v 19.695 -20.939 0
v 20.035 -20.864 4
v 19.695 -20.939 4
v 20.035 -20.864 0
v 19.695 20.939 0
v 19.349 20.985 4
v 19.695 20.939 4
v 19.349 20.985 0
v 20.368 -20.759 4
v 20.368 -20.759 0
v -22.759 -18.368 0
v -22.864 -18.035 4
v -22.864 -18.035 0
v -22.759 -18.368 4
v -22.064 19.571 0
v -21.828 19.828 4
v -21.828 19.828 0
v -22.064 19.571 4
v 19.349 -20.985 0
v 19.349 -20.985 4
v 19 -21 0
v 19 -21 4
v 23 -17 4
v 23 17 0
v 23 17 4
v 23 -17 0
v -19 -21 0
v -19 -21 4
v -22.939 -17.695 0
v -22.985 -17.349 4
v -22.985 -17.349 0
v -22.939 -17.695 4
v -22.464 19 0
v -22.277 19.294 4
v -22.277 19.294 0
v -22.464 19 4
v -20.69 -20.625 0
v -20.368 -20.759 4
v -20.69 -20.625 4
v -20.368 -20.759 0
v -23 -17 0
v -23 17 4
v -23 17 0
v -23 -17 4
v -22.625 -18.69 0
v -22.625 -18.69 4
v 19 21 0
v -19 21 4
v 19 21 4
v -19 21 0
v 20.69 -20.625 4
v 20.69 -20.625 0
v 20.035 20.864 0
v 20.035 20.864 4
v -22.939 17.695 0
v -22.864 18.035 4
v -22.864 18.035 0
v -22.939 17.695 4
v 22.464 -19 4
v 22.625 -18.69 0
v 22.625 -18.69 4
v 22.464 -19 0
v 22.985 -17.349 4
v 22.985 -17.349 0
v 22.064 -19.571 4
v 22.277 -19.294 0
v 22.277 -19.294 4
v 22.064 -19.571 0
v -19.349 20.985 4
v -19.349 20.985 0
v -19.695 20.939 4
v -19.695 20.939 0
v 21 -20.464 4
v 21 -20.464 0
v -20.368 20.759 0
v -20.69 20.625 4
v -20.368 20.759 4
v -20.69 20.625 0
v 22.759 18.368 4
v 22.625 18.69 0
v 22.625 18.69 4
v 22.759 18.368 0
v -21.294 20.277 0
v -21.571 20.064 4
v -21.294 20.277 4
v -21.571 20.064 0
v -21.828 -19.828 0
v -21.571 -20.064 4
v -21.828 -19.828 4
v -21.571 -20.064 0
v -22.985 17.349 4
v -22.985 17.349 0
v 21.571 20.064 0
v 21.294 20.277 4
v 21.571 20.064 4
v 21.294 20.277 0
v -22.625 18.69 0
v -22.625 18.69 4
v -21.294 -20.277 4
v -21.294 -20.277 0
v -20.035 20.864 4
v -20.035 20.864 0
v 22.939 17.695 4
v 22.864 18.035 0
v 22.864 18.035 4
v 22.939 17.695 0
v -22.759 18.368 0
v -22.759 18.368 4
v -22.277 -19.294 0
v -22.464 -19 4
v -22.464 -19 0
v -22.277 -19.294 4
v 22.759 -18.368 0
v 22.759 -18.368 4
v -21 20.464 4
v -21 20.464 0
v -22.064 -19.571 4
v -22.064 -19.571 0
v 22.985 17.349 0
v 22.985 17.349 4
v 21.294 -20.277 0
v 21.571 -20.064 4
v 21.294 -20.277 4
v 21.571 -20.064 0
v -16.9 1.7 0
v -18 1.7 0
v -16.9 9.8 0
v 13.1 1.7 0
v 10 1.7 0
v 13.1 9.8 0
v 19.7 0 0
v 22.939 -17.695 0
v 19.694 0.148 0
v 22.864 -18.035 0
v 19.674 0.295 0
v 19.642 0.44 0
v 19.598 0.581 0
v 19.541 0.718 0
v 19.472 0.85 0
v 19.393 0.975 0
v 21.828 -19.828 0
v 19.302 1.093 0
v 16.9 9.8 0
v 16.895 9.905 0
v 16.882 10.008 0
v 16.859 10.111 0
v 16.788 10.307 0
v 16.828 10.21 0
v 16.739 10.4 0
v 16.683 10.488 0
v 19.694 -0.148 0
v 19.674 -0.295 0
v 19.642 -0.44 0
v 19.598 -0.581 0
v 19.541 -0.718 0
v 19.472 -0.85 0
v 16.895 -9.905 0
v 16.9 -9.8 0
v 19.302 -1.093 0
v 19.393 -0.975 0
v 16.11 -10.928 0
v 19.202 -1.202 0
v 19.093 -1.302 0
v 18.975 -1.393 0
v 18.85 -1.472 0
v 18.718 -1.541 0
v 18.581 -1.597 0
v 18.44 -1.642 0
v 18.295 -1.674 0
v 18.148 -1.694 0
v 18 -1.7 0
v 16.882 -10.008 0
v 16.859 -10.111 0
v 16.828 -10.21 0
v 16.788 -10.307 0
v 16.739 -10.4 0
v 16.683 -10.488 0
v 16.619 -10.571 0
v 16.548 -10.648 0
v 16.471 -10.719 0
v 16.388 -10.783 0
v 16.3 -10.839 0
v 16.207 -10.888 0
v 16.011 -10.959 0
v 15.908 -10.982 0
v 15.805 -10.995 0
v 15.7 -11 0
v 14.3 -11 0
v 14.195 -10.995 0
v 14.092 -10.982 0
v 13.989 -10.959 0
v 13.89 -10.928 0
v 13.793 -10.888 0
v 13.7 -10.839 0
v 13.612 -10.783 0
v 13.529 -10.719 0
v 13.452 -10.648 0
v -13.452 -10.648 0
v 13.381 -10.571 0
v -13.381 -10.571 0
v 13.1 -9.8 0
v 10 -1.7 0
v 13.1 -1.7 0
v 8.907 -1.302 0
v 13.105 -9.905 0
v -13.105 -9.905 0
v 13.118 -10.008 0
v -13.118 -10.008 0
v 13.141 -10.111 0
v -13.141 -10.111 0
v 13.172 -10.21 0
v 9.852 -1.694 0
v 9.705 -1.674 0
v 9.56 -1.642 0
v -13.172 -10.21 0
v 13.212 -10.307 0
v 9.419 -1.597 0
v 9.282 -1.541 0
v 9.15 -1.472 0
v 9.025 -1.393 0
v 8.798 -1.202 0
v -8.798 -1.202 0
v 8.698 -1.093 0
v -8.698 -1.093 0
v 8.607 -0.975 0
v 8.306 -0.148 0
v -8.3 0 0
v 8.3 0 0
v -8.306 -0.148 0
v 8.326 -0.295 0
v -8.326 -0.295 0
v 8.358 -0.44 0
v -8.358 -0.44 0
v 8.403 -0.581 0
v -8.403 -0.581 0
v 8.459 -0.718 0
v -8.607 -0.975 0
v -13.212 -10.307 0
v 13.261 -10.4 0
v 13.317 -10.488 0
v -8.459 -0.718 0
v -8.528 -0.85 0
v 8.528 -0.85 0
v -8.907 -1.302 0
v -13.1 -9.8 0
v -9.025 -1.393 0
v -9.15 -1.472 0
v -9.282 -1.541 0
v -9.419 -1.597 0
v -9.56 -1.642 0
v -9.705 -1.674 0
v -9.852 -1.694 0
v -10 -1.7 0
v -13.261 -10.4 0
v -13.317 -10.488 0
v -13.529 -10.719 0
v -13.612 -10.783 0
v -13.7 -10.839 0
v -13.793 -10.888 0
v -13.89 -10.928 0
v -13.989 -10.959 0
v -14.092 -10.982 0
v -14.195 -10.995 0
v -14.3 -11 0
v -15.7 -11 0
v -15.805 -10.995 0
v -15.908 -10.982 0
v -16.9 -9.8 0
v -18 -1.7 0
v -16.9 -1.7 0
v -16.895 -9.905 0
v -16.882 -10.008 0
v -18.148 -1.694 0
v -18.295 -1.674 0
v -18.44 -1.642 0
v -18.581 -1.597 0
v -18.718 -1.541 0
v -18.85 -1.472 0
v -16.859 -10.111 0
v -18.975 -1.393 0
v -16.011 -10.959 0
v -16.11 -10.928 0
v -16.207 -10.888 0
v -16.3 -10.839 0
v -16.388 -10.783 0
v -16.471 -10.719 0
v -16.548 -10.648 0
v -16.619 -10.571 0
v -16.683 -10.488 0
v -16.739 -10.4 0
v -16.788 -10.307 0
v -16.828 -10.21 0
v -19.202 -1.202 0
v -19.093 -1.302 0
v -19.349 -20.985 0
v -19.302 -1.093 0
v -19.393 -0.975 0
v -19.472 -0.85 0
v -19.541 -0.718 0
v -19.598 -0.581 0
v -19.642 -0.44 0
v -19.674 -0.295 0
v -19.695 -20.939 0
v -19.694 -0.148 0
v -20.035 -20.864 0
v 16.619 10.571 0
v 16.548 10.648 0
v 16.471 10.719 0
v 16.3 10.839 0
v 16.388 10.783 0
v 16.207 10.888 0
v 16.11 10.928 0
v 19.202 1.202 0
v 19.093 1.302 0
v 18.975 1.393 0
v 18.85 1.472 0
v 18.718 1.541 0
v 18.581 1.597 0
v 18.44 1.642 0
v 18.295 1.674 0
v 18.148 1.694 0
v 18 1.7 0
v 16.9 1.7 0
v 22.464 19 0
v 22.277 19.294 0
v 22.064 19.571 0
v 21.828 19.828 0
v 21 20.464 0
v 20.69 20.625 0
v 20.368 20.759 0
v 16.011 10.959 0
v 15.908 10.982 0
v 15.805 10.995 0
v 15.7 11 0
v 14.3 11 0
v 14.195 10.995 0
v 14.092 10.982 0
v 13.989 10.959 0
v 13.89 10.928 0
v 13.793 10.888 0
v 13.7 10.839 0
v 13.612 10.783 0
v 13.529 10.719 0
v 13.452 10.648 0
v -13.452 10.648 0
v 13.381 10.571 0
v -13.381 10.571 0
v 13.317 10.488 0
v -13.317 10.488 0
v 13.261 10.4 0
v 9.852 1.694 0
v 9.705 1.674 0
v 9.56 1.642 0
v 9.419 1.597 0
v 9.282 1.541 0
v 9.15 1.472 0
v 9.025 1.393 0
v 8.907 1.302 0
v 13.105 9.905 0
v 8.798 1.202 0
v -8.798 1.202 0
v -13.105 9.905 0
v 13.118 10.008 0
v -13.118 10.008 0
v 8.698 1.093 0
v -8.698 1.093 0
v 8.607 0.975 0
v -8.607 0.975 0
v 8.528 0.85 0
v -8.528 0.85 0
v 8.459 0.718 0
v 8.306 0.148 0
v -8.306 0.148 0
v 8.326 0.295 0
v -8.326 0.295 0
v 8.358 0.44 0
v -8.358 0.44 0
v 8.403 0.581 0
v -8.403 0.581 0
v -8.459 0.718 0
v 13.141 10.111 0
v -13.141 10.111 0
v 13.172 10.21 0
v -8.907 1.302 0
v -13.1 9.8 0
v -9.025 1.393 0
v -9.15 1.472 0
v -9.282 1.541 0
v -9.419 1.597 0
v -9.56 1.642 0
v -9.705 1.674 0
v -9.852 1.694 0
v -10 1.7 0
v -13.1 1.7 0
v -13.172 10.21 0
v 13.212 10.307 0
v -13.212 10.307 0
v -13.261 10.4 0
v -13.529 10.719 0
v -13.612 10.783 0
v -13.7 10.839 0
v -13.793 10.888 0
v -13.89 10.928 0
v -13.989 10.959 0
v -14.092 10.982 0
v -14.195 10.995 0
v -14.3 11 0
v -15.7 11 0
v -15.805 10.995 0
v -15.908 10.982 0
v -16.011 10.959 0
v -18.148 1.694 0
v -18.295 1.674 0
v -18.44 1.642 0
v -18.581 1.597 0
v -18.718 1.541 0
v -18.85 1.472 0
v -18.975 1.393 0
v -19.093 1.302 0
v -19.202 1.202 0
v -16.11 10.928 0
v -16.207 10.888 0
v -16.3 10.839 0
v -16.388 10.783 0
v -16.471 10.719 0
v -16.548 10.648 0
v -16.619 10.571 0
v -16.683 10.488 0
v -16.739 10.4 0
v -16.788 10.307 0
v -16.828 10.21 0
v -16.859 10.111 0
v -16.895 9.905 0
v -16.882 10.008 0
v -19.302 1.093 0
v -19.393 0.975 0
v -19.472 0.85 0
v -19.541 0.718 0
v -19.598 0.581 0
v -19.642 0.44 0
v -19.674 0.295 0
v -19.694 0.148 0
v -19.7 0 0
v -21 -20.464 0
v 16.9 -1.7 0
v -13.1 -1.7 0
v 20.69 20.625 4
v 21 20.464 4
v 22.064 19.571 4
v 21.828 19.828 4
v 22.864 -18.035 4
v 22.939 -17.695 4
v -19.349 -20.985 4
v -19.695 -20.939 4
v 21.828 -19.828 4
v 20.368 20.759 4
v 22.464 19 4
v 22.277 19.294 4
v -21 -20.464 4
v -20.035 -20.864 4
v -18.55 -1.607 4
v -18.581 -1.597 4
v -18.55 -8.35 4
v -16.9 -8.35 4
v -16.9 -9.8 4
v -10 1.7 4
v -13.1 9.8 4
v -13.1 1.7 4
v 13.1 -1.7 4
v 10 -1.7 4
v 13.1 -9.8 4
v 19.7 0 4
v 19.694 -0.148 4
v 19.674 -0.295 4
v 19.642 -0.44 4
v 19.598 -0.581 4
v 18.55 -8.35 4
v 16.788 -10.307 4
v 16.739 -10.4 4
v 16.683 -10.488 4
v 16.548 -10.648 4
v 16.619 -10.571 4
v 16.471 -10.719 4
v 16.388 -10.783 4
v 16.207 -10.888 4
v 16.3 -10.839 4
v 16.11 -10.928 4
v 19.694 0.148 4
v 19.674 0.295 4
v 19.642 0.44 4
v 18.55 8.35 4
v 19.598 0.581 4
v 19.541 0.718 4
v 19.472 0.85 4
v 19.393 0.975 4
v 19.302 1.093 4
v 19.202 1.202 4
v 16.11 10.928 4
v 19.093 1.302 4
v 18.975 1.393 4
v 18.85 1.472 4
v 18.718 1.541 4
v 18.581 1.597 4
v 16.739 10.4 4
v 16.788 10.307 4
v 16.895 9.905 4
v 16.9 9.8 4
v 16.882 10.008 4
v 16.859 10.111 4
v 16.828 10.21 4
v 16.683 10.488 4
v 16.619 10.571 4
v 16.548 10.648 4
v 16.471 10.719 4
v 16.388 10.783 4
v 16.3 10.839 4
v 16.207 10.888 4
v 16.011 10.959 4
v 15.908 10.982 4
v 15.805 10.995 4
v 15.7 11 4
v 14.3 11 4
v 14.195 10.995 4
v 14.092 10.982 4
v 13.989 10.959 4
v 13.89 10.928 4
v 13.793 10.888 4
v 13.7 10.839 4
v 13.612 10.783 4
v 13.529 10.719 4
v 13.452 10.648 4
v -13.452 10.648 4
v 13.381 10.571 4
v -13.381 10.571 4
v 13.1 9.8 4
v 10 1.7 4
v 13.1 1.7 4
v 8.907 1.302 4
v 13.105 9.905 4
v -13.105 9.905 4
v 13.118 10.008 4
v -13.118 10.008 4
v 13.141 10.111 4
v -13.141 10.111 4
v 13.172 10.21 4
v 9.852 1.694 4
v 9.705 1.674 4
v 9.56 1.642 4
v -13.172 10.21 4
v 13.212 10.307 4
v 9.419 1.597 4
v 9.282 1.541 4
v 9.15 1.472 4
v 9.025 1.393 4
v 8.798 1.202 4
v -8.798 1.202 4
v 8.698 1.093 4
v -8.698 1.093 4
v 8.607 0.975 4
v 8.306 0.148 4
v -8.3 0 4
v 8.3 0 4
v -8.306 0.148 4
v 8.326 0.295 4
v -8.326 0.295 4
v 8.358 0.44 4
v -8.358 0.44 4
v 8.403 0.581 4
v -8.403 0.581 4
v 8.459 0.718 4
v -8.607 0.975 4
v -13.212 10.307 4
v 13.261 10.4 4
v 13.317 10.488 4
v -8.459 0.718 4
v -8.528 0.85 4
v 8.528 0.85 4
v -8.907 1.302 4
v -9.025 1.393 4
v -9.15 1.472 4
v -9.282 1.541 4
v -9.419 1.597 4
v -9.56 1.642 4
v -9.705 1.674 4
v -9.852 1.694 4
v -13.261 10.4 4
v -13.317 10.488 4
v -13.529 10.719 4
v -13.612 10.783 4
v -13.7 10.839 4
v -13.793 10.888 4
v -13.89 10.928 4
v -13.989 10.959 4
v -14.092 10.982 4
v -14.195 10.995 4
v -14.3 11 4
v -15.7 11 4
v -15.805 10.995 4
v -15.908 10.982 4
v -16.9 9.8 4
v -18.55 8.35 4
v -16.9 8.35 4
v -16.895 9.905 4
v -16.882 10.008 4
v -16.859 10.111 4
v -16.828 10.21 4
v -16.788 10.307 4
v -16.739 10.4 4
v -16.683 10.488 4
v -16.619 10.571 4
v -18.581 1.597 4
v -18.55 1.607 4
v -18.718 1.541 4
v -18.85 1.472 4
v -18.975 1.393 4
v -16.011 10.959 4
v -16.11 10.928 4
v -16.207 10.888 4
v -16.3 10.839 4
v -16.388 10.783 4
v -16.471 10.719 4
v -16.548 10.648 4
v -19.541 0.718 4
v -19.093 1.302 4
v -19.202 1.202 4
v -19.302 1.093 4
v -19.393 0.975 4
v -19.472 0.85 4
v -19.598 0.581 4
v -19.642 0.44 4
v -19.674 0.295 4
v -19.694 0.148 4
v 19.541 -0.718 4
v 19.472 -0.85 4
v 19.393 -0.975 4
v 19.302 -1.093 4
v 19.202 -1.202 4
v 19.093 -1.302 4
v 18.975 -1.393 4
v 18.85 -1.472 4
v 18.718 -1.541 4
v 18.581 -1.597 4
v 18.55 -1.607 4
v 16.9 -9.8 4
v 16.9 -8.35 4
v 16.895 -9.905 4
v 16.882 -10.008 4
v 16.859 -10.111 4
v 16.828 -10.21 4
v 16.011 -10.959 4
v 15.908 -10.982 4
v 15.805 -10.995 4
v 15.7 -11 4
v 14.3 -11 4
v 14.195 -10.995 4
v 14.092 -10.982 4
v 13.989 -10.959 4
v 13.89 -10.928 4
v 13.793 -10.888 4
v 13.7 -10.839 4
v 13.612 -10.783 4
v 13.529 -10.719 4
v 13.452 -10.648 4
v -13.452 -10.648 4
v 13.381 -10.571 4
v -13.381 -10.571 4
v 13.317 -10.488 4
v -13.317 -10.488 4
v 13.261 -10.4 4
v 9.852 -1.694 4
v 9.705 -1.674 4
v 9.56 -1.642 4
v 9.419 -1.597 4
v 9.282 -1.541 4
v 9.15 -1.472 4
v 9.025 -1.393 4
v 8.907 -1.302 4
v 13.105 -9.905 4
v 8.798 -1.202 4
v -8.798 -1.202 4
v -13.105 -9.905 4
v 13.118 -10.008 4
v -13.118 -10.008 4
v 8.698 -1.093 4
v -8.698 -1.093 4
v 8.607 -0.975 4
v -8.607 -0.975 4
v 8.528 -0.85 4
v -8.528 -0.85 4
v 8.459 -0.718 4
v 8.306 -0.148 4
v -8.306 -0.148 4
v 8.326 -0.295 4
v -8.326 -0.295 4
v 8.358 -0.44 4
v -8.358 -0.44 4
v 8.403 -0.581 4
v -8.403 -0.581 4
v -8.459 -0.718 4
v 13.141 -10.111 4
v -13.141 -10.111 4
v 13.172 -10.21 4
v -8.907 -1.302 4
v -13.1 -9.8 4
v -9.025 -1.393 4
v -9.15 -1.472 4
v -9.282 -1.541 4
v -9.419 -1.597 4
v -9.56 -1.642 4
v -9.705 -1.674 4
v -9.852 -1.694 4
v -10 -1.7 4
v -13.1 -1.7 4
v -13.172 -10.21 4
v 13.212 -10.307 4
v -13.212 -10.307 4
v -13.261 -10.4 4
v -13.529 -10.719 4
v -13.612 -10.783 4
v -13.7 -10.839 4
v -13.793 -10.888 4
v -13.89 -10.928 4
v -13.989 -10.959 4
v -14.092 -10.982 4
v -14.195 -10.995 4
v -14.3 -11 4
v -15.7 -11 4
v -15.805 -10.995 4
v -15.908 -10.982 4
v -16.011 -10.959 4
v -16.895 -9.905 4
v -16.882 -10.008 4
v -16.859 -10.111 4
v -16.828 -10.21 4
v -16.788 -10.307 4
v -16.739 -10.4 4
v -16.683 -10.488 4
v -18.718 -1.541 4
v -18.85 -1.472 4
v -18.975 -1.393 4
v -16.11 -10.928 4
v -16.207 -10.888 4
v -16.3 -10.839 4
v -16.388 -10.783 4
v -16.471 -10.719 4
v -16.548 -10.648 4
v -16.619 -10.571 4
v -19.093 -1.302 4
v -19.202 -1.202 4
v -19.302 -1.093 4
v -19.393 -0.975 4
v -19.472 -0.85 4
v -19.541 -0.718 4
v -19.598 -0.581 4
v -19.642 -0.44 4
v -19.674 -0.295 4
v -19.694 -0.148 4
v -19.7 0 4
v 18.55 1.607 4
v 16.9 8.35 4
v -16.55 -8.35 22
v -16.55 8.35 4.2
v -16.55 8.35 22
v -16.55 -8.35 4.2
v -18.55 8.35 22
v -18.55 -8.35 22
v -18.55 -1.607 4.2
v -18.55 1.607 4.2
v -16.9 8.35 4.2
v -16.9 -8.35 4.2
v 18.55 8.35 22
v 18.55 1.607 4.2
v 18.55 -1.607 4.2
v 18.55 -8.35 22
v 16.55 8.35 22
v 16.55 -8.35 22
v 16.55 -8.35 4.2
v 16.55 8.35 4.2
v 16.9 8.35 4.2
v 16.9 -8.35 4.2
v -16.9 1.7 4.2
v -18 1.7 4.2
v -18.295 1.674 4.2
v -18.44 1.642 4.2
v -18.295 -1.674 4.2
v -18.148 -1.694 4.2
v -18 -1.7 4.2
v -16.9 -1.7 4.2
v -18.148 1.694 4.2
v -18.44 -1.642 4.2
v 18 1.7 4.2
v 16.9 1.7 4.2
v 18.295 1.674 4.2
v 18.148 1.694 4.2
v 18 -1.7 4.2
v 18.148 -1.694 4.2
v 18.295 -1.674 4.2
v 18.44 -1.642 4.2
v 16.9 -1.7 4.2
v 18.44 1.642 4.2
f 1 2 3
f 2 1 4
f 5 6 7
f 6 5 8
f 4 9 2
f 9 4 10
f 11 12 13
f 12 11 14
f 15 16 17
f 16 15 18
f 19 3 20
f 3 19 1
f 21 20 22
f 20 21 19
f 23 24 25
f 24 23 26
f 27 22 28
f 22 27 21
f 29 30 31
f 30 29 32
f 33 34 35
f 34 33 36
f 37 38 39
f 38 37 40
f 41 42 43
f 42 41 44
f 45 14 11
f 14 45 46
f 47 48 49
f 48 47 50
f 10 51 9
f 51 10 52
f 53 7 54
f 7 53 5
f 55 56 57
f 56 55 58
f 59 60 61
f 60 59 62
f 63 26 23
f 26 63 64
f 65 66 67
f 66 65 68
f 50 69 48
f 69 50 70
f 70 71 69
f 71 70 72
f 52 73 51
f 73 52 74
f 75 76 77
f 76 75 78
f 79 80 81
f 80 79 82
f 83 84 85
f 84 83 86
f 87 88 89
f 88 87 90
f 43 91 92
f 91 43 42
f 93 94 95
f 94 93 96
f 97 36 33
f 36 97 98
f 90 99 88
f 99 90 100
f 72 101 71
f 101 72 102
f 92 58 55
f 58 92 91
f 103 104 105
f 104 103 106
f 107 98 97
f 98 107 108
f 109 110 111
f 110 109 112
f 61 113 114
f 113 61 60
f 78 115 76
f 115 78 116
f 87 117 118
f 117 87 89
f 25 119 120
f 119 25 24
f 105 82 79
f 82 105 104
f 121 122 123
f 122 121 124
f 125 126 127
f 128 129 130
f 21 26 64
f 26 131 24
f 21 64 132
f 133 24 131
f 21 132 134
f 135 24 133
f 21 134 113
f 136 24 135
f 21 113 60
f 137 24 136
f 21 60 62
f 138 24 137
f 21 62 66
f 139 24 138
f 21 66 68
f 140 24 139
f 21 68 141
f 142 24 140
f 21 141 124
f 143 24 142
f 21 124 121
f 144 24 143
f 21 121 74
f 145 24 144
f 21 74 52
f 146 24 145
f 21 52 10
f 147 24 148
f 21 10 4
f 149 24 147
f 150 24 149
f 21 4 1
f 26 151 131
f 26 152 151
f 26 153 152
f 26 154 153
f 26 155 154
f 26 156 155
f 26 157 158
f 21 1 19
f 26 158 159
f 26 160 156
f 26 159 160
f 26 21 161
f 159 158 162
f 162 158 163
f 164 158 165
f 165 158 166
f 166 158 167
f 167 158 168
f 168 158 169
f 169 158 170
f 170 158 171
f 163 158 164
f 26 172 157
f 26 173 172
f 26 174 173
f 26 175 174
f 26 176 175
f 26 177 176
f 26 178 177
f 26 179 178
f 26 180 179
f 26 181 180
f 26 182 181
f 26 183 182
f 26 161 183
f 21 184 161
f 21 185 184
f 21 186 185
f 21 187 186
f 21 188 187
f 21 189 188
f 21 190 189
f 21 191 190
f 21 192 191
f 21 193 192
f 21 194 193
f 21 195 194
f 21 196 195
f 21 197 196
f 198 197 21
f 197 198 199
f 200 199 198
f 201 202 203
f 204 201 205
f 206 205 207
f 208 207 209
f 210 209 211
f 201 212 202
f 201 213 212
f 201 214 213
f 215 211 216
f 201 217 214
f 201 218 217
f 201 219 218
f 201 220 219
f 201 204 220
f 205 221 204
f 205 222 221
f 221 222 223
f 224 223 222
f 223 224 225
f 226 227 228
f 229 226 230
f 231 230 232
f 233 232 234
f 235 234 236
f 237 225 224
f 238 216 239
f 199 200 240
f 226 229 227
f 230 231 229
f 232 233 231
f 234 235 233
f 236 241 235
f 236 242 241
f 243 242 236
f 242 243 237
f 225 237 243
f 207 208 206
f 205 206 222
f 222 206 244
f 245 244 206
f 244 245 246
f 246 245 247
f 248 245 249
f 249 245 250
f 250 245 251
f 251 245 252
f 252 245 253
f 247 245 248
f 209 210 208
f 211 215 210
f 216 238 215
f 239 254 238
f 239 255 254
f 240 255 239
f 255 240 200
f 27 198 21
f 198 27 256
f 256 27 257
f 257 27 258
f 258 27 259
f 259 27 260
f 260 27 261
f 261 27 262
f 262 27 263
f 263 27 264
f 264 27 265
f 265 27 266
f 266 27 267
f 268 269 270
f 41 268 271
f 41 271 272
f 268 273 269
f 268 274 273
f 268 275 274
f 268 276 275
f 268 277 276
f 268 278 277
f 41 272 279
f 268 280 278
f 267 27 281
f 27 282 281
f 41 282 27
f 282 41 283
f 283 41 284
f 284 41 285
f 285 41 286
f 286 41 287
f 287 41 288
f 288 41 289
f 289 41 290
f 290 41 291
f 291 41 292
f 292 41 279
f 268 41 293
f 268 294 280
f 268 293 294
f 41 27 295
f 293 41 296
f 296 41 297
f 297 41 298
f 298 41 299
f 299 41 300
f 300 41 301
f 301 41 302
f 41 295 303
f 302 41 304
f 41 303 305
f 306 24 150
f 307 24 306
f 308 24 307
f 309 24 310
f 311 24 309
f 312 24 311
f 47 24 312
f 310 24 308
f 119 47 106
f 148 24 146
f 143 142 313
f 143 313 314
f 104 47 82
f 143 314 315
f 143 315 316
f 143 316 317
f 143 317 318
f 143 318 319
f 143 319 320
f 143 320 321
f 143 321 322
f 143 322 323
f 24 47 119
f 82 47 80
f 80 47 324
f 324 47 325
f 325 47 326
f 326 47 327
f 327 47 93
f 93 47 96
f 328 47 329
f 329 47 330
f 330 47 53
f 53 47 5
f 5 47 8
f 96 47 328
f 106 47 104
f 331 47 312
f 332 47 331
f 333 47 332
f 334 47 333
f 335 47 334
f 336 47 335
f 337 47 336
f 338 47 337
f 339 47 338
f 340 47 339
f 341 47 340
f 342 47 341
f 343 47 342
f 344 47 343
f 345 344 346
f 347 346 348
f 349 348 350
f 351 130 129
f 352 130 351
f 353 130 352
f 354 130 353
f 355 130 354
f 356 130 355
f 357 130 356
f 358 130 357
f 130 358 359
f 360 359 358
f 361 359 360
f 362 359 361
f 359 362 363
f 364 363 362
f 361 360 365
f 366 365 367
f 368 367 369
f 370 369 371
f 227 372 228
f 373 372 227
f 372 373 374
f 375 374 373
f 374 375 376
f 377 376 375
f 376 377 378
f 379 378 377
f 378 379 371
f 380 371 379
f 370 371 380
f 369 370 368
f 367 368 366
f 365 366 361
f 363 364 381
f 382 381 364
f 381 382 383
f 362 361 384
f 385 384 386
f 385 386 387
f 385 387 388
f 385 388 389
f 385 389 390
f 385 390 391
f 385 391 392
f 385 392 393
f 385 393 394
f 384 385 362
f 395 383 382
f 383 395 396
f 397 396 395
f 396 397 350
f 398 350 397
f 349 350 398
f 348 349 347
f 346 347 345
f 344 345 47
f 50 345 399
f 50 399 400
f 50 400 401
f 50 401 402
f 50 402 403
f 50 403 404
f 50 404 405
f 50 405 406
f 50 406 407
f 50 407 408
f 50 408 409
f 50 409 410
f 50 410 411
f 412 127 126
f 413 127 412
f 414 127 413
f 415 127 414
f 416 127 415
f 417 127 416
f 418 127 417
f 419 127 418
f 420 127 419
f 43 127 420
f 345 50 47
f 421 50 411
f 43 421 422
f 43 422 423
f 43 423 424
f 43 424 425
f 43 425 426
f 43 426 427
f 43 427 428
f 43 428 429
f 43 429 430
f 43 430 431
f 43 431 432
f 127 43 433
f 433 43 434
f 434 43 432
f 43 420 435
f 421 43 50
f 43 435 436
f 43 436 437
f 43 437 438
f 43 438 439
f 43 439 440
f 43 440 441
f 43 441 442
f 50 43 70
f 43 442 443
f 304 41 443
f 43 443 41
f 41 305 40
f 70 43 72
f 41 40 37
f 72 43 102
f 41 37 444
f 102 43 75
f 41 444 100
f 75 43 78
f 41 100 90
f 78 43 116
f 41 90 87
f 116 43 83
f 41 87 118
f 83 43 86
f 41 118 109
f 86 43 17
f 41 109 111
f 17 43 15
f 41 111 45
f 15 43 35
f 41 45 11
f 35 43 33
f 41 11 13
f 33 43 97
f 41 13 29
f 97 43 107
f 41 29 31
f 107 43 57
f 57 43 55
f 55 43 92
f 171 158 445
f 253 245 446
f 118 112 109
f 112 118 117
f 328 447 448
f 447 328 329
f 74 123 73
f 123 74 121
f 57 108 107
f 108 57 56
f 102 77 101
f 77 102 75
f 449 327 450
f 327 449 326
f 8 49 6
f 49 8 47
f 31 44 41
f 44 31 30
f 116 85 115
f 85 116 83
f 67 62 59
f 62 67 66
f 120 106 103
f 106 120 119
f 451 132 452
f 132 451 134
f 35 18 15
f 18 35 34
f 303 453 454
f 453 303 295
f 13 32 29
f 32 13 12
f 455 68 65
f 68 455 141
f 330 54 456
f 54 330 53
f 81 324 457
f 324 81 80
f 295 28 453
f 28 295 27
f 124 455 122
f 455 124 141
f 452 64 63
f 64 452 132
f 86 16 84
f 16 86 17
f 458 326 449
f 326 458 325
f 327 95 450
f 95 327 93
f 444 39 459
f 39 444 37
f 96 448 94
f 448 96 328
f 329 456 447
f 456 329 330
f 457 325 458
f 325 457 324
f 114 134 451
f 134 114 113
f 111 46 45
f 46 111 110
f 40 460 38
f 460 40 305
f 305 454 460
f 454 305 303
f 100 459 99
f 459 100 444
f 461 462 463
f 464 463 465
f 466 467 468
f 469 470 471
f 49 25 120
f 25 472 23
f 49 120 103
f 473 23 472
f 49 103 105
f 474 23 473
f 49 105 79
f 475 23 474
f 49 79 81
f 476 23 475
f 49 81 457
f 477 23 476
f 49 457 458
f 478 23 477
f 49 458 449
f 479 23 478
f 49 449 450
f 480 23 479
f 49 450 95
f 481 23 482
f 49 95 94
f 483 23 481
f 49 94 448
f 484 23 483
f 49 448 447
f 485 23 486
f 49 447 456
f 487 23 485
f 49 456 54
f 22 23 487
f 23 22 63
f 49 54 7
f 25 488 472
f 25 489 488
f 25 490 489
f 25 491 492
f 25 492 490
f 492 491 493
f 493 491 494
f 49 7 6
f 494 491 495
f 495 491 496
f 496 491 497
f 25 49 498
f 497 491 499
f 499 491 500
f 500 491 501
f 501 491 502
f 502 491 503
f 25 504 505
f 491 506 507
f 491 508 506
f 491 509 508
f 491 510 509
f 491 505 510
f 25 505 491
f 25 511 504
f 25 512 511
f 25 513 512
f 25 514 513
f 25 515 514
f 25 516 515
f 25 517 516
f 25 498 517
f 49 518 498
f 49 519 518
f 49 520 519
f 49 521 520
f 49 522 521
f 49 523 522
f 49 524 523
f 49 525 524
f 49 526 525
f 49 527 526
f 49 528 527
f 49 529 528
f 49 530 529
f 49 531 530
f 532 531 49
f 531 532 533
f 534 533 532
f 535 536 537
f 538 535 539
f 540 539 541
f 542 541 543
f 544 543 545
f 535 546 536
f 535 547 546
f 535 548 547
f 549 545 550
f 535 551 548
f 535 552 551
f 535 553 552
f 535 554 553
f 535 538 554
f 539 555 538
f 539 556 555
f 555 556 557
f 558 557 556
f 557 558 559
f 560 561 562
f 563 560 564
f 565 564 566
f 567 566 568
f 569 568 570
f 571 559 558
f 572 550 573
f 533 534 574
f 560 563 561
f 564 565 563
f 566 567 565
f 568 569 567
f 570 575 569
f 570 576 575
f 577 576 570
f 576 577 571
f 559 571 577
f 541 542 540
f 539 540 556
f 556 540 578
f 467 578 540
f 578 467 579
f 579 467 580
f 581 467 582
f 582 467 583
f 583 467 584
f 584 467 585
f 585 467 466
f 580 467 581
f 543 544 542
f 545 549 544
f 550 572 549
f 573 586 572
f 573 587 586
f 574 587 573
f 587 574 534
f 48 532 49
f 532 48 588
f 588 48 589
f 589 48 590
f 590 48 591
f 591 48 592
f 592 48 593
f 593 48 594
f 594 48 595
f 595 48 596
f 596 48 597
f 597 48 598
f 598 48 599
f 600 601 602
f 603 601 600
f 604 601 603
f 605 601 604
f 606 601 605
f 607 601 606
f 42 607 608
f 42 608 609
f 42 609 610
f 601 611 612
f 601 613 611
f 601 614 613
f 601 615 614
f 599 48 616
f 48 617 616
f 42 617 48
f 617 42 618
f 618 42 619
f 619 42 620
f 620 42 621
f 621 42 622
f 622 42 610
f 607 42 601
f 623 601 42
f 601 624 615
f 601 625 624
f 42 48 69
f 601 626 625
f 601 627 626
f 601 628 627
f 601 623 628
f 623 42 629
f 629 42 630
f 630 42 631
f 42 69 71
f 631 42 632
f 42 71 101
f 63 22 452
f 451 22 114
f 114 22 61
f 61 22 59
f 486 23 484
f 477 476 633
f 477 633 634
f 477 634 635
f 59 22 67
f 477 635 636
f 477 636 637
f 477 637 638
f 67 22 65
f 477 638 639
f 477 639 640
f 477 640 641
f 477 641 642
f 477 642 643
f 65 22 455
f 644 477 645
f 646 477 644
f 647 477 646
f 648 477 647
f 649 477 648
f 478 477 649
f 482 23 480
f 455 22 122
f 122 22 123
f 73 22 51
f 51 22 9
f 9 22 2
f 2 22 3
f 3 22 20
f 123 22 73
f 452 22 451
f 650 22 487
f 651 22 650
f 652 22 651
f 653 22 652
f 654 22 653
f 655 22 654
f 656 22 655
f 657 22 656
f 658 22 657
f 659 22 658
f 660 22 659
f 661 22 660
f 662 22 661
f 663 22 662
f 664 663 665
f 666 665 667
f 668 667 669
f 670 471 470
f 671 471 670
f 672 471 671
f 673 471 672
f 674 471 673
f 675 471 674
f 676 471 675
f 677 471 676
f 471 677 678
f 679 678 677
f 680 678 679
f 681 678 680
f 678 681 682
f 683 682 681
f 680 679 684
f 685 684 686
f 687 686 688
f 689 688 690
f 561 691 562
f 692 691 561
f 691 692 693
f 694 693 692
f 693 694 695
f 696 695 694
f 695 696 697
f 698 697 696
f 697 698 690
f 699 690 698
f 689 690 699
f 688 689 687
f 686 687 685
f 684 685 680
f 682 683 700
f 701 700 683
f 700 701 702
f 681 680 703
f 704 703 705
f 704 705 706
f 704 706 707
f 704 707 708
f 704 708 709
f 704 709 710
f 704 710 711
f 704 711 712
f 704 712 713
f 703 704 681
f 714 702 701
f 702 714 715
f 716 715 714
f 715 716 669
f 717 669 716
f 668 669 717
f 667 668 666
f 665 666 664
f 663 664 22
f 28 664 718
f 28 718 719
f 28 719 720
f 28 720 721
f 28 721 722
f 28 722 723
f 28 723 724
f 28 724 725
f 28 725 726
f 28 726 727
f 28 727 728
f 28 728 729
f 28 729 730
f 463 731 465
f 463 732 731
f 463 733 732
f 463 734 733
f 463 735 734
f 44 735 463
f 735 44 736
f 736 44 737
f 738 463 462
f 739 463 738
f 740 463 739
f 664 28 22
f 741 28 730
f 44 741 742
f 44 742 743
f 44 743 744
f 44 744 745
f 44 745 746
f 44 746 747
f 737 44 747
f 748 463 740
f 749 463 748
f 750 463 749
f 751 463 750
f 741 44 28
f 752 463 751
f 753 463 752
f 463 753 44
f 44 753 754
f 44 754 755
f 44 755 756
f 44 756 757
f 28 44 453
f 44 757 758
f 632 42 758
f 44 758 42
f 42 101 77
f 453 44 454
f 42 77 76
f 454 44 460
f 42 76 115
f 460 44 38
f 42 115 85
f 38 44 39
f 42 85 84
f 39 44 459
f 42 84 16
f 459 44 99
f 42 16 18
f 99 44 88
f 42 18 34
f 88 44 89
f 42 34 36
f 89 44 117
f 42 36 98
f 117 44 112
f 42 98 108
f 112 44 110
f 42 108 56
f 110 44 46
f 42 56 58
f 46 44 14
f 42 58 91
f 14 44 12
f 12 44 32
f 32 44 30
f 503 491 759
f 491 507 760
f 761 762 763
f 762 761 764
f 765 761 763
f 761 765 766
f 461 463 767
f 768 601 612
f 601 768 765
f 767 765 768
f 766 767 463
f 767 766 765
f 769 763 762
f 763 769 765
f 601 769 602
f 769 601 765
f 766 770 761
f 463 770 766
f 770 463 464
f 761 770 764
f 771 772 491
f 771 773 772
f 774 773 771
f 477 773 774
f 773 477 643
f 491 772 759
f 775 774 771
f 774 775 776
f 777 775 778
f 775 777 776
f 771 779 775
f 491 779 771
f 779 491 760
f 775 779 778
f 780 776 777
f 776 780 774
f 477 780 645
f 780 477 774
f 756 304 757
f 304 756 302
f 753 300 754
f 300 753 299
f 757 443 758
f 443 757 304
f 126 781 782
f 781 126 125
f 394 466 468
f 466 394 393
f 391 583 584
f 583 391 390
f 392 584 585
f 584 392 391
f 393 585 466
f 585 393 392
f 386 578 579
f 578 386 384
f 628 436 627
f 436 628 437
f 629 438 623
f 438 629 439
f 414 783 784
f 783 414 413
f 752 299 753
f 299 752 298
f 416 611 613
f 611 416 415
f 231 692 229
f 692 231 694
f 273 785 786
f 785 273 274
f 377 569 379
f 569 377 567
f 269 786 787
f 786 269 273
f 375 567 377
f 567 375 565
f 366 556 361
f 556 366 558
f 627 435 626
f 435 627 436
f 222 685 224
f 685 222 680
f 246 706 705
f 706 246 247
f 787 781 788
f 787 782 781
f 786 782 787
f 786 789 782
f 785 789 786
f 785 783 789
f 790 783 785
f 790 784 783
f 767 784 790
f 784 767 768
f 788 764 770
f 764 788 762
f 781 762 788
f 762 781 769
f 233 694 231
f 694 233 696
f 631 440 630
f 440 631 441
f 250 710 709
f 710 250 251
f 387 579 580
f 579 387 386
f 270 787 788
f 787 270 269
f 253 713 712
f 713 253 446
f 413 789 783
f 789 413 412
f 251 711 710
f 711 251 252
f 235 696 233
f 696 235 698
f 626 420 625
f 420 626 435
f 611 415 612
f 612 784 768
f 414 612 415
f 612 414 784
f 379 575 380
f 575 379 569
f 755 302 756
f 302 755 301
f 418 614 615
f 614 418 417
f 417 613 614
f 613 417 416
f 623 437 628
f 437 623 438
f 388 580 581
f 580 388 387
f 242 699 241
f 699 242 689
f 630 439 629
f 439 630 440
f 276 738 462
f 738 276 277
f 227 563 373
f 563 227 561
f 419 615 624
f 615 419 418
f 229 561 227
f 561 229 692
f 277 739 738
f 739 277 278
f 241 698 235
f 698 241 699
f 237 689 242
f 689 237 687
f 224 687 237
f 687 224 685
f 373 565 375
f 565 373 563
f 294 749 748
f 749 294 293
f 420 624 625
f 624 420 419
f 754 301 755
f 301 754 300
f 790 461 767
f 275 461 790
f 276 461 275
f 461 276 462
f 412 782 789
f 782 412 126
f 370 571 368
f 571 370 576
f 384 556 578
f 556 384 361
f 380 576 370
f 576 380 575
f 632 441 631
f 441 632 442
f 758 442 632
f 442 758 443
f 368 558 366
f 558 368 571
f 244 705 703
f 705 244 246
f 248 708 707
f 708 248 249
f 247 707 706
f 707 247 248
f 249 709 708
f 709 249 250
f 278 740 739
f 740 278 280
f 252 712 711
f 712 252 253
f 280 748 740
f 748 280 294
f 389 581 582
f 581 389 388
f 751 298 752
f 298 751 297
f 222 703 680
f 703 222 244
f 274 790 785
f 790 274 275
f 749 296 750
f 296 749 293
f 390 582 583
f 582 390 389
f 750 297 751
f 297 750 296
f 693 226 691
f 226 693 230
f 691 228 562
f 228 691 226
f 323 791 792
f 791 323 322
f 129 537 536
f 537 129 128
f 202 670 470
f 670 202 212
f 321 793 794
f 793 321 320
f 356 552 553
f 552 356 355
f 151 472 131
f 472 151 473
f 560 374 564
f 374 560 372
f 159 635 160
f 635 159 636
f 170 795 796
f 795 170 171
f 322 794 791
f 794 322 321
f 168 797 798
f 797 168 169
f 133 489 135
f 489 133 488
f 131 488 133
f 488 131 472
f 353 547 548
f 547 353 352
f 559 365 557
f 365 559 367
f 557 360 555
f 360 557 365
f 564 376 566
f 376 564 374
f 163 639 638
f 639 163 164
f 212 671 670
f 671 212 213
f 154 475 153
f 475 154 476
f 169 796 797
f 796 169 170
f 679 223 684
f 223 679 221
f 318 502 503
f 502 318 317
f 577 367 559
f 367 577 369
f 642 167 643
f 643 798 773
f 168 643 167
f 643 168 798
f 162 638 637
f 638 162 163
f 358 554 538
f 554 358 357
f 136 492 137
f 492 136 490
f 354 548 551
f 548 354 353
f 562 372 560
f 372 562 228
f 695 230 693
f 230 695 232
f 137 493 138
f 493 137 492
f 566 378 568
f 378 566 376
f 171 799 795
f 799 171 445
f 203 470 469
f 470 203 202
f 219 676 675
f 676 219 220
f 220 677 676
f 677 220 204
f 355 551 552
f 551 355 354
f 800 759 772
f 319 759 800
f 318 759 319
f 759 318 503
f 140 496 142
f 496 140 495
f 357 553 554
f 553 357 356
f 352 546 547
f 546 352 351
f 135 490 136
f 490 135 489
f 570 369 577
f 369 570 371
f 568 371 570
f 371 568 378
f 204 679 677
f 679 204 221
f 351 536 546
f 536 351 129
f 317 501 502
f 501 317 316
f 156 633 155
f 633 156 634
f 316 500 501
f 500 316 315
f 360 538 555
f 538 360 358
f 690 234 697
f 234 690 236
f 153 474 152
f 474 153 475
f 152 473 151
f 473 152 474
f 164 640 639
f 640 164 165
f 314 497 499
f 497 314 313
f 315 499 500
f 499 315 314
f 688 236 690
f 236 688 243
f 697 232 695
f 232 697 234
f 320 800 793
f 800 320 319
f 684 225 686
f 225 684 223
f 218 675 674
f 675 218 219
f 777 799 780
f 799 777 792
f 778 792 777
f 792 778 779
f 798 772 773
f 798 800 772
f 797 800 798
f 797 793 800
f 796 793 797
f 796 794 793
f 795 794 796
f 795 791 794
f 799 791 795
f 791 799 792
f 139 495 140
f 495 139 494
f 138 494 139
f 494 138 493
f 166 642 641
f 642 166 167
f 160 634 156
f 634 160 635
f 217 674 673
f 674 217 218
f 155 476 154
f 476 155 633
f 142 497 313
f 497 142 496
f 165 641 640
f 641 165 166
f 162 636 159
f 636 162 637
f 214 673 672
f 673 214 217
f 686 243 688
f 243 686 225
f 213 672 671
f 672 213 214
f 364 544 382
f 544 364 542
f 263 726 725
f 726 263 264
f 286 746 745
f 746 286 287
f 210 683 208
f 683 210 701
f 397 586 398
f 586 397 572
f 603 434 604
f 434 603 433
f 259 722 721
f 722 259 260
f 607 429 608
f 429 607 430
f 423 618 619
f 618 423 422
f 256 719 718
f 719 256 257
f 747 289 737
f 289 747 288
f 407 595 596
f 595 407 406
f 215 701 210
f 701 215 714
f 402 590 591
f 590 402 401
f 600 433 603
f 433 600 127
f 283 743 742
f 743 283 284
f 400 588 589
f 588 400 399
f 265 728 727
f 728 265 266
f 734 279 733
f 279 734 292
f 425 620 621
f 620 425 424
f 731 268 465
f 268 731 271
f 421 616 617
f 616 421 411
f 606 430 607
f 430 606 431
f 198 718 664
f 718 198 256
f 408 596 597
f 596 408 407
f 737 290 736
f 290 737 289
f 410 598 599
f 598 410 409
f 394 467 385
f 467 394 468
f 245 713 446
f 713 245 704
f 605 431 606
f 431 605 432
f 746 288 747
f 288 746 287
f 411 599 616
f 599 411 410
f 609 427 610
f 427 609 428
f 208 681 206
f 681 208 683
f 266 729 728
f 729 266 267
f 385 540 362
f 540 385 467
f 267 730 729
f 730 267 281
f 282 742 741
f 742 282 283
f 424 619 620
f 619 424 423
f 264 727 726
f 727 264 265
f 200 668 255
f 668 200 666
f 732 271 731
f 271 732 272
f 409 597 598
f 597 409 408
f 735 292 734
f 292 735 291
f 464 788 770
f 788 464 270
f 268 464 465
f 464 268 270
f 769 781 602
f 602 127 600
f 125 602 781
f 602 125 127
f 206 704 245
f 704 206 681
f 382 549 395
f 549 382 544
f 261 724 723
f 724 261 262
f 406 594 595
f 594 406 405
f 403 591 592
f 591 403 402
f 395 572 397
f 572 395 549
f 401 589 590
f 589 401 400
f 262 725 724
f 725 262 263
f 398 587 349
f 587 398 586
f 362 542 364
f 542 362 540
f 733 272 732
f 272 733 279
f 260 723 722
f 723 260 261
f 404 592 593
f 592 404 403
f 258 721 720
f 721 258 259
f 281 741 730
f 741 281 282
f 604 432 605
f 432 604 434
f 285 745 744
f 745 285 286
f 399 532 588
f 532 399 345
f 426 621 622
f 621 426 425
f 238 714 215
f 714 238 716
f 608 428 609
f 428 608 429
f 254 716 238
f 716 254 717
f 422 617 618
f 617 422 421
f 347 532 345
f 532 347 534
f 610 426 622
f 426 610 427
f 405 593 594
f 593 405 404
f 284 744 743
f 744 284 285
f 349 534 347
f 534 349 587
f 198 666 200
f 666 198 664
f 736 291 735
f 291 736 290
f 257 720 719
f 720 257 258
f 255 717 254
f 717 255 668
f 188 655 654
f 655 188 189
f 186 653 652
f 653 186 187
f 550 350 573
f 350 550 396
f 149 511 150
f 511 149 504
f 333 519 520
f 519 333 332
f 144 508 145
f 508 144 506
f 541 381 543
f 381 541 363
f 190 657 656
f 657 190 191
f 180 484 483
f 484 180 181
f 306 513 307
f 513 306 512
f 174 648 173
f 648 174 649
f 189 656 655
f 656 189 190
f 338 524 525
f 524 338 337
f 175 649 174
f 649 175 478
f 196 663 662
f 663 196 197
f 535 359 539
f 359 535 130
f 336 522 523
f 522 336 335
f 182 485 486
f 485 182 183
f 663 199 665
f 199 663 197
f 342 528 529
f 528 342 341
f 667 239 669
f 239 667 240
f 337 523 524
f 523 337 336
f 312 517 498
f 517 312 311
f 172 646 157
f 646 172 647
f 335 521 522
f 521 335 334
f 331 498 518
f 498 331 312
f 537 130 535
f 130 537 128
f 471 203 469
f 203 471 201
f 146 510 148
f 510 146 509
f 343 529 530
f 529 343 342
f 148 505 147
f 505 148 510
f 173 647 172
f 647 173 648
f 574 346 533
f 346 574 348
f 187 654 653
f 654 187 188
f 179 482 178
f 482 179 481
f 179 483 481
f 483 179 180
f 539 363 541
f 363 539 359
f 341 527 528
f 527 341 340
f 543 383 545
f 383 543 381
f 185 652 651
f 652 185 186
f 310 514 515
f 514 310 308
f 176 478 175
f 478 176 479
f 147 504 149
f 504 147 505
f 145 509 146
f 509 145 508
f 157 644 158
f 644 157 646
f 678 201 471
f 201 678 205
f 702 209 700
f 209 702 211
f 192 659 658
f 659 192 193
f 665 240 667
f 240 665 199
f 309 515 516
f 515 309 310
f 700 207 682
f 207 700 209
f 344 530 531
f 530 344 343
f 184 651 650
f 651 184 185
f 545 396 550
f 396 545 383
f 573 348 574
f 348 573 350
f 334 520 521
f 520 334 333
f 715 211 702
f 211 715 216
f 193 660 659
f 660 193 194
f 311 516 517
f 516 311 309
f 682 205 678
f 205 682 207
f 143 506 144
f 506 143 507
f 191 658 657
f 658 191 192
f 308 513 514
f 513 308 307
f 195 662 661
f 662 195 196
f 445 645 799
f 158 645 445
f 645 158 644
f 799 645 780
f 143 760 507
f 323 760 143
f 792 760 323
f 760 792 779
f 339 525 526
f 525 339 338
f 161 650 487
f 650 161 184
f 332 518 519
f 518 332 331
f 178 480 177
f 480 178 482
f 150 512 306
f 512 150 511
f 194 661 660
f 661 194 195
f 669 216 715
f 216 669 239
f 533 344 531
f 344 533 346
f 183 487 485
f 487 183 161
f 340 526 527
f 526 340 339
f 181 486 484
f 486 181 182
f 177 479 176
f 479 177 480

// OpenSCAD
// file: woli_config.scad
// ============================================================
// WOLI V1.1 AUDITED FINAL — MASTER PARAMETERS
// Units: mm
// ============================================================

$fn = 72;

// ---------- GLOBAL ----------
fit_clearance = 0.40;
wall = 3.0;
floor_t = 5.0;
cover_t = 2.8;
shell_r = 10.0;

m3_clear = 3.4;
m3_pilot_d = 2.8;
m3_pilot_depth = 4.2;

tie_slot_w = 3.8;
tie_slot_l = 18;

// ---------- BODY ----------
body_w = 170;
body_l = 90;
chassis_h = 31;
top_h = 34;

top_upper_w = 162;
top_upper_l = 80;
top_upper_r = 9;

// ---------- N20 DRIVE ----------
wheel_d = 43;
wheel_w = 17.5;

n20_x = 12;
n20_y = 33;
n20_z = 10;

n20_bracket_x = 25;
n20_bracket_y = 8.5;
n20_bracket_z = 11.5;
n20_bracket_hole_cc = 17;      // approx; slots absorb error

wheel_axis_ground_z = wheel_d/2; // reference only; actual chassis ground plane requires hardware check
wheel_opening_l = 25;            // side wheel cutout depth (Y), mm
motor_y = -body_l/2 + body_l/3;  // wheel center: 1/3 body depth in from front (-Y)
motor_slot_len = 8;
motor_bracket_zone_x = body_w/2 - 18;

// ---------- BALL CASTER ----------
caster_w = 22;
caster_l = 17;
caster_h = 15;
caster_ball_d_visual_ref = 11.5; // photo-only reference; not used for fit
caster_dock_y = body_l/2 - 21;

caster_body_clear = 0.7;
caster_retainer_t = 3.0;
caster_retainer_screw_cc = 27;

caster_mount_x = 15;
caster_mount_y = 12;
caster_floor_open = 18.5;

// ---------- MAIN PCB ----------
pcb_w = 50;
pcb_l = 70;
pcb_stack_h = 15;

pcb_tray_w = 56;
pcb_tray_l = 76;
pcb_mount_cc_x = 44;
pcb_mount_cc_y = 64;

// ---------- MG90S ----------
servo_a = 32.4;
servo_b = 32.5;
servo_c = 12;
servo_fit = 0.7;

// ---------- LIMIT SWITCH ----------
limit_w = 21;
limit_l = 23;
limit_h = 6;

// ---------- VL53L0X ----------
tof_w = 10.7;
tof_l = 25;
tof_h = 11.5;
tof_rail_clear = 0.7;

tof_bezel_w = 34;
tof_bezel_h = 19;

// ---------- PHONE HOLDER / NECK ----------
phone_ball_d = 18.0;            // physical socket fit still required
neck_h = 30;
neck_base_w = 54;
neck_base_l = 42;
neck_base_h = 5;
neck_hole_x = 38;
neck_hole_y = 26;

neck_recess_w = 62;
neck_recess_l = 50;
neck_recess_d = 1.2;

neck_pilot_d = 2.8;
neck_pilot_depth = 7.0;

// reference phone clearance envelope only
phone_ref_w = 165;
phone_ref_h = 82;
phone_ref_t = 12;

// ---------- KLIFE PD-Q2 BATTERY ----------
battery_w = 68;
battery_l = 143;
battery_h = 11;
battery_mass_g = 205;

battery_fit_clear = 0.8;
battery_tray_w = 84;
battery_tray_l = 146;
battery_tray_t = 2.4;
battery_rail_t = 2.5;
battery_rail_h = 5.5;
battery_center_y = -18;

battery_tray_mount_x = 39;
battery_tray_mount_y = 55;

// ---------- UPPER ELECTRONICS DECK ----------
bridge_w = 122;
bridge_l = 94;
bridge_t = 3.0;
bridge_leg_h = 20;
bridge_leg_x = 56;
bridge_leg_y = 36;

module_boss_h = 4.5;
module_boss_d = 8.0;
module_pilot_d = 2.8;

pcb_deck_cx = -25;
pcb_deck_cy = 0;

tb_deck_cx = 34;
tb_deck_cy = 17;

usbc_deck_cx = 36;
usbc_deck_cy = -24;

// ---------- TB6612FNG HW-166 ----------
tb6612_w = 26;
tb6612_l = 26;
tb6612_clear = 0.6;

// total installed height is intentionally not hard-coded

// ---------- USB-C BREAKOUT ----------
usbc_board_w = 12;
usbc_board_l = 15;
usbc_connector_h = 4.2;
usbc_clear = 0.6;

// ---------- TOP COVER INTERFACE ----------
cover_skirt_depth = 4.0;
cover_skirt_clear = 0.8;
cover_skirt_t = 2.5;

cover_side_screw_y = 55 * body_l / 190;
cover_side_screw_z = -2.5;

rear_service_w = 42;
rear_service_h = 14;
rear_hatch_screw_x = 19;
rear_hatch_center_z = 10;

// ---------- CABLE MANAGEMENT ----------
cable_bridge_w = 24;
cable_bridge_l = 14;
cable_bridge_h = 8;
cable_bridge_channel = 8;

// ---------- SERVO LOCK FRAMEWORK ----------
lock_angle_deg = 90;
unlock_angle_deg = 10;

lock_plate_d = 28;
lock_arm_w = 10;
lock_arm_t = 4.0;
lock_reach = 22;
lock_tip_d = 10;

horn_center_clear_d = 7.0;
horn_slot_d = 2.4;              // physical stock-horn check required
horn_slot_len = 8.0;
horn_slot_radius = 8.0;

lock_pad_t = 2.0;
lock_pad_d = 11.0;
// file: woli_lib.scad
include <woli_config.scad>;

module rr2d(w,l,r){
    offset(r=r) square([w-2*r,l-2*r], center=true);
}

module rplate(w,l,h,r){
    linear_extrude(height=h) rr2d(w,l,r);
}

module rshell(w,l,h,r,t,bottom){
    difference(){
        rplate(w,l,h,r);
        translate([0,0,bottom])
            rplate(w-2*t,l-2*t,h,r-t);
    }
}

module slot2d(len,d){
    hull(){
        translate([-len/2,0]) circle(d=d);
        translate([ len/2,0]) circle(d=d);
    }
}

module slot3d(len,d,h){
    linear_extrude(height=h) slot2d(len,d);
}

module tie_slot(h=5){
    rplate(tie_slot_w,tie_slot_l,h,1.2);
}

module body_screw_pattern(h=20){
    for(x=[-screw_x,screw_x])
        for(y=[-screw_y,screw_y])
            translate([x,y,-1])
                cylinder(h=h,d=m3_clear);
}

module body_bosses(h=20){
    for(x=[-screw_x,screw_x])
        for(y=[-screw_y,screw_y])
            translate([x,y,0])
                cylinder(h=h,d=m3_boss_d);
}


// Closed-top shell for removable upper cover.
// Leaves the underside open and preserves a roof thickness.
module top_shell(w,l,h,r,t){
    difference(){
        rplate(w,l,h,r);
        translate([0,0,-0.1])
            rplate(w-2*t,l-2*t,h-t+0.1,r-t);
    }
}


// Tapered rounded solid built from two rounded plates.
// Useful for product-like enclosure shoulders.
module tapered_rounded_solid(w0,l0,w1,l1,h,r0,r1){
    hull(){
        rplate(w0,l0,0.8,r0);
        translate([0,0,h-0.8])
            rplate(w1,l1,0.8,r1);
    }
}

// Open-bottom tapered cover with closed roof.
module tapered_top_shell(w0,l0,w1,l1,h,r0,r1,t){
    difference(){
        tapered_rounded_solid(w0,l0,w1,l1,h,r0,r1);
        translate([0,0,-0.1])
            tapered_rounded_solid(
                w0-2*t,l0-2*t,
                w1-2*t,l1-2*t,
                h-t+0.1,
                max(r0-t,1),max(r1-t,1)
            );
    }
}
// main file
include <woli_lib.scad>;

base_w=46; base_l=42; base_h=4;
pocket_w=servo_a+servo_fit;
pocket_d=servo_c+servo_fit;

difference(){
    union(){
        rplate(base_w,base_l,base_h,4);

        translate([-pocket_w/2-2,-pocket_d/2-2,base_h])
            cube([2,pocket_d+4,18]);

        translate([ pocket_w/2,-pocket_d/2-2,base_h])
            cube([2,pocket_d+4,18]);
    }

    for(x=[-14,14])
        translate([x,0,-0.1])
            slot3d(8,m3_clear,base_h+0.3);

    for(x=[-15,15])
        translate([x,0,-0.1])
            rplate(tie_slot_w,22,base_h+0.3,1.2);
}
